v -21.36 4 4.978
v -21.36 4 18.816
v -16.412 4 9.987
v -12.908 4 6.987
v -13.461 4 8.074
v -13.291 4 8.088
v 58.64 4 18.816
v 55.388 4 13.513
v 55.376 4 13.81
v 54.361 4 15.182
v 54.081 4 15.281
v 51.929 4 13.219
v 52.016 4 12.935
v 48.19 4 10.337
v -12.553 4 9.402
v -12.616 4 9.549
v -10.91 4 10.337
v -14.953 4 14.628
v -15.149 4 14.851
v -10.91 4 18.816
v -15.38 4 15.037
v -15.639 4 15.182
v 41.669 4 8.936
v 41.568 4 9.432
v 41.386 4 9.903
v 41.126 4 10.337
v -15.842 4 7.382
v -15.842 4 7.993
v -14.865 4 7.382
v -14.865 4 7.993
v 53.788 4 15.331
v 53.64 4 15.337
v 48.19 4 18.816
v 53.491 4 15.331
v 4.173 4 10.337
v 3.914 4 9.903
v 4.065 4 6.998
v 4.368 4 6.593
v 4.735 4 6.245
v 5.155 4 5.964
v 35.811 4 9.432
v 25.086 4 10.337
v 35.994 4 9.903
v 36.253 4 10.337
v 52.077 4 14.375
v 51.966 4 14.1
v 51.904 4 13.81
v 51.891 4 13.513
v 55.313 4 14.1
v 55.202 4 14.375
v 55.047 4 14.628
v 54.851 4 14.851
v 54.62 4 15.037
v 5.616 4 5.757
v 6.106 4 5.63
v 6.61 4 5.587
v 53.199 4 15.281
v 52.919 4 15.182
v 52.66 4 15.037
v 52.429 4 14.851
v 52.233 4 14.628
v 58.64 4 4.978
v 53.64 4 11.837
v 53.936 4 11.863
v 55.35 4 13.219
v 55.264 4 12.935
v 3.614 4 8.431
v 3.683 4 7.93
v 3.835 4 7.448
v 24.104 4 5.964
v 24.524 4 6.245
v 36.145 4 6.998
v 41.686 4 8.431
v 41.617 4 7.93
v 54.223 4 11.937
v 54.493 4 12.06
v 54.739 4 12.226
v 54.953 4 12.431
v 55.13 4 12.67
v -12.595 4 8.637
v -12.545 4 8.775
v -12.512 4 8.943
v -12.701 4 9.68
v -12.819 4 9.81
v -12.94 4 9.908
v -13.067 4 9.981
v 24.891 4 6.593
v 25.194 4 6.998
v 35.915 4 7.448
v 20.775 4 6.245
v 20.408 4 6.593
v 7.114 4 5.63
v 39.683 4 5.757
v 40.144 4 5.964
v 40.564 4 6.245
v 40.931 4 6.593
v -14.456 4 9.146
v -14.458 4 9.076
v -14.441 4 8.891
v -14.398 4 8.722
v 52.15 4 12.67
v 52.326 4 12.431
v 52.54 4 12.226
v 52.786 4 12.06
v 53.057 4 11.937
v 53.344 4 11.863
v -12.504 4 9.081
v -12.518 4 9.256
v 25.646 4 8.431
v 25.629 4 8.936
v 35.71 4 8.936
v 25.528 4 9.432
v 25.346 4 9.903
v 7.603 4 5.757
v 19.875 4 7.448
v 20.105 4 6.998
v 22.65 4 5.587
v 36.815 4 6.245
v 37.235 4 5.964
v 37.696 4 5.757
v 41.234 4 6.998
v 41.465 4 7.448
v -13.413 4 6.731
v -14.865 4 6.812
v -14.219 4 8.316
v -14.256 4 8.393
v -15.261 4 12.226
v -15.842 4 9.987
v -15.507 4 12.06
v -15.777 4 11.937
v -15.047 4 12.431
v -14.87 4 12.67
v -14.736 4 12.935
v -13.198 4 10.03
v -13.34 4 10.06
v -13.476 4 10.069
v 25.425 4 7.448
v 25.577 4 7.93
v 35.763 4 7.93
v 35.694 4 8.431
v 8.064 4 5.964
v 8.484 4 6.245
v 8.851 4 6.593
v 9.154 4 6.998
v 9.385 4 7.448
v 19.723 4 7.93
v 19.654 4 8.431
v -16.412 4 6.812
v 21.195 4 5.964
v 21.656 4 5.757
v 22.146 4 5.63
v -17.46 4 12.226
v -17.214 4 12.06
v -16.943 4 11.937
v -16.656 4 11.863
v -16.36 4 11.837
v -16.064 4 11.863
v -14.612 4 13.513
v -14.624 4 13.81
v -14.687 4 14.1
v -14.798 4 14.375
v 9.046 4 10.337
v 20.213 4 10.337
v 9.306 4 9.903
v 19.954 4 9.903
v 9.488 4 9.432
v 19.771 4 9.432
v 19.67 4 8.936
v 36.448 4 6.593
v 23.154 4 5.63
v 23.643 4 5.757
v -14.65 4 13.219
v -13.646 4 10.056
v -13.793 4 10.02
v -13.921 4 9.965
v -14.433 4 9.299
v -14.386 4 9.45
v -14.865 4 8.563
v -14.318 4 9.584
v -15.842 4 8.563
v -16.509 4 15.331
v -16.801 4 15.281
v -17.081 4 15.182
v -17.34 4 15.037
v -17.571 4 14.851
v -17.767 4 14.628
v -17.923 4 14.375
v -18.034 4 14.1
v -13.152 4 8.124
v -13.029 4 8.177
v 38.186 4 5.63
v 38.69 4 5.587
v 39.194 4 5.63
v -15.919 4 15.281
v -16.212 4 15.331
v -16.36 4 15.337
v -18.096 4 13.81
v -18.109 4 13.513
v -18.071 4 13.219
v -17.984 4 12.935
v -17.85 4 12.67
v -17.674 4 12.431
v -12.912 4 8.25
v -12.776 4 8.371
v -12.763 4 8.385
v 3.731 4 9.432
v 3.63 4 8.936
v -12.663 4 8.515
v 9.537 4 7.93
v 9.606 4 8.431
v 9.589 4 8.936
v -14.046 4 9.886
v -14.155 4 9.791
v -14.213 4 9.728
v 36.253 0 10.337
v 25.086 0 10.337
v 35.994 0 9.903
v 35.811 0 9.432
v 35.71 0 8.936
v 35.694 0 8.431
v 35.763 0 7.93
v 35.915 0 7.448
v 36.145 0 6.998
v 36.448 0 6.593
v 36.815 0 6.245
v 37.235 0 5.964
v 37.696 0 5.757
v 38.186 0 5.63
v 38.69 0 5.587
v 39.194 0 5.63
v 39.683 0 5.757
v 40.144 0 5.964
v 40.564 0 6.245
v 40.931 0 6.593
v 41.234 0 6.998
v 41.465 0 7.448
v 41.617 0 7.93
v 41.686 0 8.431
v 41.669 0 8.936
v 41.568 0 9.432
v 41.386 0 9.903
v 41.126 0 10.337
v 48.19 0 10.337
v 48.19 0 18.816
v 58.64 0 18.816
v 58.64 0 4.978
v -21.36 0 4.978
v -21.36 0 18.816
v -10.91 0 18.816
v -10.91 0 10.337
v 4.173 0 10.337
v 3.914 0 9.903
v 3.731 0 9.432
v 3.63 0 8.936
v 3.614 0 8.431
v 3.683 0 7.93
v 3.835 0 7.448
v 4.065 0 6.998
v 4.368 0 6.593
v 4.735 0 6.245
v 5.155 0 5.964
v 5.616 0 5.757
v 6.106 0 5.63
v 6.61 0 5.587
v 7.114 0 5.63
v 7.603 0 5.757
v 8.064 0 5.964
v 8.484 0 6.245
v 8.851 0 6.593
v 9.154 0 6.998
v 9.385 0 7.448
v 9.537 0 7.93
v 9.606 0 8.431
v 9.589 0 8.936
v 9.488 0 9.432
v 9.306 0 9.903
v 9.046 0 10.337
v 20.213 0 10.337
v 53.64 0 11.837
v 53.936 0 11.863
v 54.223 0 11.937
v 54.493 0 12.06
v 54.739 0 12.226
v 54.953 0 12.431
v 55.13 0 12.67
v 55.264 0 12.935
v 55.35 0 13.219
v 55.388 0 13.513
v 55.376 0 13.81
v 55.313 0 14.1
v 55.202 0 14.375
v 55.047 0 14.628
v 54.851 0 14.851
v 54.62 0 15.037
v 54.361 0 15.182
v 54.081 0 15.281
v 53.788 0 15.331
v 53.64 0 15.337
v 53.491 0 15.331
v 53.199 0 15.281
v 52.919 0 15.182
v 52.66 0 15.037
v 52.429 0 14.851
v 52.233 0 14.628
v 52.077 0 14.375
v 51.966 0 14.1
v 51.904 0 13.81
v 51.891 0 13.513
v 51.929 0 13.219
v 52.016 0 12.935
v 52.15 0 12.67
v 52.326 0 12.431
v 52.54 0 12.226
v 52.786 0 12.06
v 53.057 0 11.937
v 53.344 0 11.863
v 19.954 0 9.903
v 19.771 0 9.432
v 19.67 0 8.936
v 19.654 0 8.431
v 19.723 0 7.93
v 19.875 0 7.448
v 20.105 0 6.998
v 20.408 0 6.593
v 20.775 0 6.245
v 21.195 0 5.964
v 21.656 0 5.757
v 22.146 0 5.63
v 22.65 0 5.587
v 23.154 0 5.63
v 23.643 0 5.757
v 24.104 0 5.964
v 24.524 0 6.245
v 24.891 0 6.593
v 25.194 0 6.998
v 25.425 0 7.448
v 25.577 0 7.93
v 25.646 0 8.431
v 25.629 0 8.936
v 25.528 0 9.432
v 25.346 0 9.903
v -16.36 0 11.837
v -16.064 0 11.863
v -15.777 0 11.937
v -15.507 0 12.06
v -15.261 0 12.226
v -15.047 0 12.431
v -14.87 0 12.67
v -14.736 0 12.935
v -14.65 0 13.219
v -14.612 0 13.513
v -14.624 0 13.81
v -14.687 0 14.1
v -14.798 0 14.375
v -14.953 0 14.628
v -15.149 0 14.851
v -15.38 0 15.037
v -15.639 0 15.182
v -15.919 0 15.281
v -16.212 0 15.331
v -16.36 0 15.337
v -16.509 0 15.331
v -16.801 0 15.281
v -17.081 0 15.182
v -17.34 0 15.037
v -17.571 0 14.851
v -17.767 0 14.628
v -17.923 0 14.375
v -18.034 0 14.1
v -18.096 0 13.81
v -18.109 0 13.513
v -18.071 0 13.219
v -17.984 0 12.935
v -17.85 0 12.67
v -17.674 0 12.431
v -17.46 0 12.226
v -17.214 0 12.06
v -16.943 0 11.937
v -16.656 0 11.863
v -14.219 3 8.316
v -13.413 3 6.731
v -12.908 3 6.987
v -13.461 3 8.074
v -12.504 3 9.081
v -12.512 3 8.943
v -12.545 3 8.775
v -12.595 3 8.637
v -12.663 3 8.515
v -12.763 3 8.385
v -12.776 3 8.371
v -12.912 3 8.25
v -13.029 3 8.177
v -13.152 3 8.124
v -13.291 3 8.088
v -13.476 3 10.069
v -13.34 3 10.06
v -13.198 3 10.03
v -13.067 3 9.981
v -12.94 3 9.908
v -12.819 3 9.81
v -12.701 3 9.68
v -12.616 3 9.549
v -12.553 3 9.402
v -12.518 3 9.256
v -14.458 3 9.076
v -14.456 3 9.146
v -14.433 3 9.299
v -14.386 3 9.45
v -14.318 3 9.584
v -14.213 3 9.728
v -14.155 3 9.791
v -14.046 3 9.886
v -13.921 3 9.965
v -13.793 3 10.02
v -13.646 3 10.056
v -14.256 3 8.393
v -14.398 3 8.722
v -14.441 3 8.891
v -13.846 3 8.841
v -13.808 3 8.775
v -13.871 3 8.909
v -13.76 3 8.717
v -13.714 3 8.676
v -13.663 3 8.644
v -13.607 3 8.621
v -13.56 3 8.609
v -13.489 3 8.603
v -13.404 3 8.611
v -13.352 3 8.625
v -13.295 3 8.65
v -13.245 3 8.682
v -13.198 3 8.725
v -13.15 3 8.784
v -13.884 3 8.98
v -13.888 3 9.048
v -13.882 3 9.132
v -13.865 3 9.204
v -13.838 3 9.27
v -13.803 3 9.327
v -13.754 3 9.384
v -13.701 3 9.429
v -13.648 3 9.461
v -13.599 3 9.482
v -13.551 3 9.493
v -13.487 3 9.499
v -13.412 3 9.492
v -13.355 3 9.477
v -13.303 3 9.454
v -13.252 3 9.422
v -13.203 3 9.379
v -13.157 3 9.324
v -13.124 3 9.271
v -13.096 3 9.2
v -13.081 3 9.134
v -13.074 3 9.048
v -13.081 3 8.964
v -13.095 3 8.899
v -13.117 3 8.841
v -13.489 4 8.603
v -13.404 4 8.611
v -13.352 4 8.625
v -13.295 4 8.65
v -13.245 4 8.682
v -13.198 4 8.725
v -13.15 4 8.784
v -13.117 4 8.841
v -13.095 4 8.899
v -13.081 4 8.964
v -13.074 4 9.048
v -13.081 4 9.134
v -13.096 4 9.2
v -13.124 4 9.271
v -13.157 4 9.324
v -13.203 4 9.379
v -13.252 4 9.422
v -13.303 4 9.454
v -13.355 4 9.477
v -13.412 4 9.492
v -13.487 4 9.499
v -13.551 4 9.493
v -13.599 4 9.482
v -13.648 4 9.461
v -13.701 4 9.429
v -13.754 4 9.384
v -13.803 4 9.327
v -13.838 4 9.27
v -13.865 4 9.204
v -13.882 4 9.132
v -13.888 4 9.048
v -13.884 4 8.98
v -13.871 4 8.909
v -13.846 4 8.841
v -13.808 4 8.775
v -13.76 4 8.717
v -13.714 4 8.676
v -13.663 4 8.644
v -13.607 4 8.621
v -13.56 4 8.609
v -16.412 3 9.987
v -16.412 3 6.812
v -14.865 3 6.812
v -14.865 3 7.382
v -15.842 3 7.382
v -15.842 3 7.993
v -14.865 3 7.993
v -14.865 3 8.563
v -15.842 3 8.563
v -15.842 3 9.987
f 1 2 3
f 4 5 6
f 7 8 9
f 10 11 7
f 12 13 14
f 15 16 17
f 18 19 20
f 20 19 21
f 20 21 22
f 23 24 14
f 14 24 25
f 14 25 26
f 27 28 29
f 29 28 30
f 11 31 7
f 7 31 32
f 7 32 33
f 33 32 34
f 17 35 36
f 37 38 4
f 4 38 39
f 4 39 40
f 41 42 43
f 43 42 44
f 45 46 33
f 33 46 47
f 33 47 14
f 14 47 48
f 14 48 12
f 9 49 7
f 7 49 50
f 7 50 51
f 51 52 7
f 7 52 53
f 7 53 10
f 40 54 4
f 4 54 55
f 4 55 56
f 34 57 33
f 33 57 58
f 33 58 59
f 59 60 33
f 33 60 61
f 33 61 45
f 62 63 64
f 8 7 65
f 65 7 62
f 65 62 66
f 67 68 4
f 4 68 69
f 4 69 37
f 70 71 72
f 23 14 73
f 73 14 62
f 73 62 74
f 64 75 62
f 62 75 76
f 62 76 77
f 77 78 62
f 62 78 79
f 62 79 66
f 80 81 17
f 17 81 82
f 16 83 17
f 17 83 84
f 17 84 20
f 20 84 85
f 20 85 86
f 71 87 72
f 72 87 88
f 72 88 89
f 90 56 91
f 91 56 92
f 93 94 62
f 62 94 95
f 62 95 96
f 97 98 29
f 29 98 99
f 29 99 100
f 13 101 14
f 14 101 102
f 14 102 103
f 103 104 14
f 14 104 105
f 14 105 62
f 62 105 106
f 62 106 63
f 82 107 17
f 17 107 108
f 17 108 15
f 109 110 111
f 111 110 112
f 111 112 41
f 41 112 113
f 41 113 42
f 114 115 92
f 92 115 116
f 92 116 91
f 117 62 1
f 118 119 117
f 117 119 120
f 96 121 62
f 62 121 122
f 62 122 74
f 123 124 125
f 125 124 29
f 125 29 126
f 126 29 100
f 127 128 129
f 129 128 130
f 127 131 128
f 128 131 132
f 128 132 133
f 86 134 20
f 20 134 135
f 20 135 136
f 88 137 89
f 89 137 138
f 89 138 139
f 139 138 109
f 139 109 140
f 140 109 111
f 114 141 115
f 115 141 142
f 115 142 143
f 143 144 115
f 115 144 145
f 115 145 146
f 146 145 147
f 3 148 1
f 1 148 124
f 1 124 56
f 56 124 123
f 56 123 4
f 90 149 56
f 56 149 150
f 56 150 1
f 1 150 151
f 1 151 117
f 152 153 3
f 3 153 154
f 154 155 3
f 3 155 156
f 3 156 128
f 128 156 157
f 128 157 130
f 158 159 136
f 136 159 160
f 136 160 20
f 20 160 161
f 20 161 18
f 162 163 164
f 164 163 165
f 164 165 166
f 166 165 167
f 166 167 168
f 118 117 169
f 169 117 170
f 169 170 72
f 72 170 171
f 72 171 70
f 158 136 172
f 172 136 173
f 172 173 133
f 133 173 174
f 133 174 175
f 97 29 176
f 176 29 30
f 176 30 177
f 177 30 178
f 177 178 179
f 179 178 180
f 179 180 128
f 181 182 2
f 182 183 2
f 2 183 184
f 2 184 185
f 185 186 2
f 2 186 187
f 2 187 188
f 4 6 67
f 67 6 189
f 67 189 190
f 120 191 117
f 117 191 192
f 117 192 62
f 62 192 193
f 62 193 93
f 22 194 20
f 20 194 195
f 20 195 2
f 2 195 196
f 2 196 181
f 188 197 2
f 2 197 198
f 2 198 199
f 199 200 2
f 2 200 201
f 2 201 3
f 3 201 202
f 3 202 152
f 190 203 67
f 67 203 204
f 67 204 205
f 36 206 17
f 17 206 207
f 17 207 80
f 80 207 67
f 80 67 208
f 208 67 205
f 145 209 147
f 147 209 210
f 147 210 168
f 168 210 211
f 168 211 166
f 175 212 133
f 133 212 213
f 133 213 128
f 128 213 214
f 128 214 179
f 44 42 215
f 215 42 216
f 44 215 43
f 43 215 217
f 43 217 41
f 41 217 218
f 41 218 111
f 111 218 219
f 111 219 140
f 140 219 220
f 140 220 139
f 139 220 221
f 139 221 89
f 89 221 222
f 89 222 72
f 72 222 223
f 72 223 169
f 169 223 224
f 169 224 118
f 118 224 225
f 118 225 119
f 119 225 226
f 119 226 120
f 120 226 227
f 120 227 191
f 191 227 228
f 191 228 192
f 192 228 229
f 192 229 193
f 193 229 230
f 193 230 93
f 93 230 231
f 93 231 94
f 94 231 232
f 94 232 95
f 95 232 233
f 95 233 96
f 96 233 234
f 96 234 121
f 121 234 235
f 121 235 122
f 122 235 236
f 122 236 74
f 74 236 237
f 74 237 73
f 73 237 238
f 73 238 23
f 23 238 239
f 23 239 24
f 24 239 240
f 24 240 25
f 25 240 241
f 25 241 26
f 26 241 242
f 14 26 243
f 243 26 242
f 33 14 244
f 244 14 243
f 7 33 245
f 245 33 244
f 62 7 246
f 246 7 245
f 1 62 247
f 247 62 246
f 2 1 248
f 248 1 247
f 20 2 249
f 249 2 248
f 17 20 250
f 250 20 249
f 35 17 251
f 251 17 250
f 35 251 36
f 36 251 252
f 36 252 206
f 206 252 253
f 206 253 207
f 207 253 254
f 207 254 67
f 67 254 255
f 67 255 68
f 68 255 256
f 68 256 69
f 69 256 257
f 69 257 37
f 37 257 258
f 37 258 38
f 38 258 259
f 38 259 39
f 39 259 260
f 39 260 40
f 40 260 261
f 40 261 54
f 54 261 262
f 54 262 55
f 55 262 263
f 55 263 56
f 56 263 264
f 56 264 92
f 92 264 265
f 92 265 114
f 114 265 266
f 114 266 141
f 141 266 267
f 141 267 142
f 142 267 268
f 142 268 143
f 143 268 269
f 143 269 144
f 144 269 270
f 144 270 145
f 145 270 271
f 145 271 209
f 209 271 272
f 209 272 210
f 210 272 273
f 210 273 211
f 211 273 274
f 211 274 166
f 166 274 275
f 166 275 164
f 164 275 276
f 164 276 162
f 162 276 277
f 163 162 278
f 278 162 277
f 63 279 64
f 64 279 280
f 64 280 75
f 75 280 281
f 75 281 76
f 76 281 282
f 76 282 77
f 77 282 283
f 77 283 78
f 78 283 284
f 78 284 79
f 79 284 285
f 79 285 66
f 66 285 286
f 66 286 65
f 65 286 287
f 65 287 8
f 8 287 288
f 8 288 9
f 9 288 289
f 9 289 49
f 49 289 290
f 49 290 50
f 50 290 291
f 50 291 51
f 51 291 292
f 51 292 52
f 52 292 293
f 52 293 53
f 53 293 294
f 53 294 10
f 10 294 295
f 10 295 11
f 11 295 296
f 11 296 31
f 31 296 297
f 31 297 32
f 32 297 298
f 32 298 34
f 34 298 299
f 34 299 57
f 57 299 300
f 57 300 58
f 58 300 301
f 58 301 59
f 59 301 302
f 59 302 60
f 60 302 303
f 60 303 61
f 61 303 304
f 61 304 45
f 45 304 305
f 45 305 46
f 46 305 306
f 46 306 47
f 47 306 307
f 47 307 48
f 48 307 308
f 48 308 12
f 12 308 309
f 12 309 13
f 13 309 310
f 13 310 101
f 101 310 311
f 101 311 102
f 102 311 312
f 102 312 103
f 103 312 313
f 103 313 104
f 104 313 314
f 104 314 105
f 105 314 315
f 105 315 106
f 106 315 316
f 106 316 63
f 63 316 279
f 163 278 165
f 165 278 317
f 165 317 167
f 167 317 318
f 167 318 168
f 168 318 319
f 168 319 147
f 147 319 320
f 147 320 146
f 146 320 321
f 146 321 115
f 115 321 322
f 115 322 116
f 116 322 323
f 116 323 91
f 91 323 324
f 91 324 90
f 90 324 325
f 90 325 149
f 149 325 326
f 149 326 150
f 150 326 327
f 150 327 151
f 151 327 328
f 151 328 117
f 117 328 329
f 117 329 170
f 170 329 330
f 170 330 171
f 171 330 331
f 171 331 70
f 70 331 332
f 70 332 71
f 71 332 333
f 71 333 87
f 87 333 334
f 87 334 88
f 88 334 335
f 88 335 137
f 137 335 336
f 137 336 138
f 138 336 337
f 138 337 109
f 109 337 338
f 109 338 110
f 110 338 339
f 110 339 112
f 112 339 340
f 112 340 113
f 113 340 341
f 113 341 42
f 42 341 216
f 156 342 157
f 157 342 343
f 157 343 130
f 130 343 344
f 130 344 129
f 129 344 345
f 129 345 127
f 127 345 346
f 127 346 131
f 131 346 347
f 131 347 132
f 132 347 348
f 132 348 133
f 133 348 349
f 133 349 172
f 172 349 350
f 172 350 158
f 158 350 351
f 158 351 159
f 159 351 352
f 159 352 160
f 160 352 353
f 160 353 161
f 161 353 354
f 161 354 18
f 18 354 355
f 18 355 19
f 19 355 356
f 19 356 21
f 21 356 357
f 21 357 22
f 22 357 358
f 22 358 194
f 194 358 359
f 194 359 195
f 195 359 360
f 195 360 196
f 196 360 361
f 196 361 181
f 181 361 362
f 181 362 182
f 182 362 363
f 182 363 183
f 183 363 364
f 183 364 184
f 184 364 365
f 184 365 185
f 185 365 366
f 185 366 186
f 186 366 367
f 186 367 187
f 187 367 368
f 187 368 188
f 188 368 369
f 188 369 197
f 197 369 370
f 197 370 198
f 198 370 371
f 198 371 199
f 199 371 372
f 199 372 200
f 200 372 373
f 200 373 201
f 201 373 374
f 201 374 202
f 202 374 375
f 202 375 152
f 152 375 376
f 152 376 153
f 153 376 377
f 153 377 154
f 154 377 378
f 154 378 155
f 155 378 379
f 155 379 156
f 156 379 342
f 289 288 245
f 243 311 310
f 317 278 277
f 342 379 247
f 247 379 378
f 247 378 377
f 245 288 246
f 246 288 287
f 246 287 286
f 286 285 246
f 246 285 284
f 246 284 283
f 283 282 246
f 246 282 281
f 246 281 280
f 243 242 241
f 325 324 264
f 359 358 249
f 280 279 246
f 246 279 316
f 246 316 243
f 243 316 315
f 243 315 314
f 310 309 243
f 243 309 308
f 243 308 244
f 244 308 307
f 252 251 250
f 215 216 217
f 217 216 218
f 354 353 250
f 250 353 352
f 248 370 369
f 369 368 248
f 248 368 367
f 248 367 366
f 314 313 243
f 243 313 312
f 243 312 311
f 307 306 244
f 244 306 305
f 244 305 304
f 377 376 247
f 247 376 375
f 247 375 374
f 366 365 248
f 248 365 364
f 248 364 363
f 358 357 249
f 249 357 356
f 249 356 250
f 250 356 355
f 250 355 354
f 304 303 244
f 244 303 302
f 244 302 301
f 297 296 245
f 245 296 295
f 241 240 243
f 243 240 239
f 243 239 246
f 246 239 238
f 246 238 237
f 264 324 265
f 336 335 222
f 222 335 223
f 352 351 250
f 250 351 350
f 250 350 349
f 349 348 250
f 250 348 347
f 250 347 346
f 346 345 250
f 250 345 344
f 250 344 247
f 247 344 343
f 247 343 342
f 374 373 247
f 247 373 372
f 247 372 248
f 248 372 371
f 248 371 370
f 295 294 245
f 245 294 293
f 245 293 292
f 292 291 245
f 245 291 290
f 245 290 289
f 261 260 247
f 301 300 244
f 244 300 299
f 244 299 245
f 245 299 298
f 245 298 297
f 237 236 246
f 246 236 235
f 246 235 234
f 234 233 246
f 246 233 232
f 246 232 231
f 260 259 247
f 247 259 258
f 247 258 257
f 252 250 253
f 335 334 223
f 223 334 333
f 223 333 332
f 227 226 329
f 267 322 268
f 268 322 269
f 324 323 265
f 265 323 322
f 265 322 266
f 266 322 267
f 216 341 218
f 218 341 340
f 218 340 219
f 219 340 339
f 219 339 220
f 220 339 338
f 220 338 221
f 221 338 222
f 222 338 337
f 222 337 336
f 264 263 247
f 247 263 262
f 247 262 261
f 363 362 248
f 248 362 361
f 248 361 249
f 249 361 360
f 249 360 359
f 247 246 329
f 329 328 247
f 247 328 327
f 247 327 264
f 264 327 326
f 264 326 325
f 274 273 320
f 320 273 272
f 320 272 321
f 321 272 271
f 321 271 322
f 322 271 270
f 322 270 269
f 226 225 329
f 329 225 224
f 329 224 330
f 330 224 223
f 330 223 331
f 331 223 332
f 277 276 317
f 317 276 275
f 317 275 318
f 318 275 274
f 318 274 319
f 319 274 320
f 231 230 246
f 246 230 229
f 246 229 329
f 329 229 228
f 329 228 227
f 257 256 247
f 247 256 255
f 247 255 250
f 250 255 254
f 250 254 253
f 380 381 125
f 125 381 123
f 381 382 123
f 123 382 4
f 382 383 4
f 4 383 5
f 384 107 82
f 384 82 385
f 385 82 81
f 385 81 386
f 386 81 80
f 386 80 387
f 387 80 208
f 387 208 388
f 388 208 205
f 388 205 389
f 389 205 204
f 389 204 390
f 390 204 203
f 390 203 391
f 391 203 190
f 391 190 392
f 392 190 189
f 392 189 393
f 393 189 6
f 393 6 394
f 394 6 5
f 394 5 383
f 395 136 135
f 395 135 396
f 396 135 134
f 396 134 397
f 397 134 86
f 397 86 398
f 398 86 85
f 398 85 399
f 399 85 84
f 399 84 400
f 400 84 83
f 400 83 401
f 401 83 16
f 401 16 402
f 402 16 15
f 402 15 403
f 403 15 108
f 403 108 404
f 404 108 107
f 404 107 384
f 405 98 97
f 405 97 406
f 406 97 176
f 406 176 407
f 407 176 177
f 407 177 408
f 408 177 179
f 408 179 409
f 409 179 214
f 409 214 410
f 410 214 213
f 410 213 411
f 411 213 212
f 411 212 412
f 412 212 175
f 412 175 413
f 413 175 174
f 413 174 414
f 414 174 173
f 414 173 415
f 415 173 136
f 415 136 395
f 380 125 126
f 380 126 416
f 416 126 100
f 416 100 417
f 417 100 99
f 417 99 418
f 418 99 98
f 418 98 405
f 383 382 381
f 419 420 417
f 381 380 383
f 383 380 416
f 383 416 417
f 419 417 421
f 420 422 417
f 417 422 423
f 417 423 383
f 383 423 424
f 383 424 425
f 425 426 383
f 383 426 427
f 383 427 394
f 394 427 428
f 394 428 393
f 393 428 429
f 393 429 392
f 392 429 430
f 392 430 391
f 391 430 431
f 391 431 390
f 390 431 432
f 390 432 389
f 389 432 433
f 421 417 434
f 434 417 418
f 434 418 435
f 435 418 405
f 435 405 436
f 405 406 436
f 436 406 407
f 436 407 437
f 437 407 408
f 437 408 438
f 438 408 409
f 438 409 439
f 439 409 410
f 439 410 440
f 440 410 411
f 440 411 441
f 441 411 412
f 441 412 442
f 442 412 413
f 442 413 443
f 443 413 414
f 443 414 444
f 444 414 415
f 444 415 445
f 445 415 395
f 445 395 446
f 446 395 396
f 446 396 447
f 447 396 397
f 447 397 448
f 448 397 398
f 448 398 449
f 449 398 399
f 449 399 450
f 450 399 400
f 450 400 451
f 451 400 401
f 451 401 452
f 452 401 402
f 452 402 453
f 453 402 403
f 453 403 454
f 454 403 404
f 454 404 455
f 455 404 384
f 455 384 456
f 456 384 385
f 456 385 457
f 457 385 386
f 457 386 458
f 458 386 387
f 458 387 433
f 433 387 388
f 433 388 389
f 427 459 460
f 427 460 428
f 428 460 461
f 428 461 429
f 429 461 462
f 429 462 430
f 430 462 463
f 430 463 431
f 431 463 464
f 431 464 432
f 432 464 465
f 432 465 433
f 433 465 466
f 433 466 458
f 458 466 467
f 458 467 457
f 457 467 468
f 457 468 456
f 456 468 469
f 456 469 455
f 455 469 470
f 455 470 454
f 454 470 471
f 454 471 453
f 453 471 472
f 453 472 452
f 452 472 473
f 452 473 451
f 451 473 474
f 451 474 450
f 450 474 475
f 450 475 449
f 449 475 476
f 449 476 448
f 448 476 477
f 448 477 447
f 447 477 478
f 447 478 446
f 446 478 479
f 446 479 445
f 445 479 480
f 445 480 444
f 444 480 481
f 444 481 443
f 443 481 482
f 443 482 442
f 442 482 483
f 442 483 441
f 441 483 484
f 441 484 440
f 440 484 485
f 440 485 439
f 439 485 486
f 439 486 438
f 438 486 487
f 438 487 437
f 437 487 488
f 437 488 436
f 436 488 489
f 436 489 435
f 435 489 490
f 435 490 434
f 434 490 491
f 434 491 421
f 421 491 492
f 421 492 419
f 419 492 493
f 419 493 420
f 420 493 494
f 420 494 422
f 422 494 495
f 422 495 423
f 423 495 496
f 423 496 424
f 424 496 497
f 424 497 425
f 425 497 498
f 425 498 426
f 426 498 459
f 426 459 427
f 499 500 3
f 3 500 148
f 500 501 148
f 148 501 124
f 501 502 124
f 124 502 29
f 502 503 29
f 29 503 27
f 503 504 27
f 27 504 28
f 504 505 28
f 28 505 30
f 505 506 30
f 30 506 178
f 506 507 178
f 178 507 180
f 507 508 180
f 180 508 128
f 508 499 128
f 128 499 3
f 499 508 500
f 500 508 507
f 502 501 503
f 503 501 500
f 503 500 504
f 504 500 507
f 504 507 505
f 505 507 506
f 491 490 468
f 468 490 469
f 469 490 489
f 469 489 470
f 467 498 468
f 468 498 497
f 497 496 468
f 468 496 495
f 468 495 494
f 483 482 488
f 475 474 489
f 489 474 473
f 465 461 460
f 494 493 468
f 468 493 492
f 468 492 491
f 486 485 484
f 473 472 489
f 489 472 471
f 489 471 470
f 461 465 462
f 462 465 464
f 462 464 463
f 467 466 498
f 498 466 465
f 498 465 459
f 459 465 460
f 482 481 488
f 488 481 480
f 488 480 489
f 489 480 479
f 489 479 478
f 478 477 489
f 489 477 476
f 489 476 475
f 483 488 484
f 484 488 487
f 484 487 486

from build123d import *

# Parameters (mm, degrees)
BOSS_EXTRUDE1_OUTLINE_R = 1.75
BOSS_EXTRUDE1_DEPTH     = 4
CUT_EXTRUDE1_DEPTH      = 1


# Read off the part's stored shape, not the designer's step: Boss-Extrude1
with BuildPart() as part:
    # Boss-Extrude1 outline → Boss-Extrude1 (new body)
    with BuildSketch(Plane(origin=(0, 0, 0), x_dir=(1, 0, 0), z_dir=(0, 1, 0))):
        with BuildLine():
            Line((25.086474615, -10.33744254), (36.25307775, -10.33744254))
            ThreePointArc((36.25307775, -10.33744254), (38.689776183, -5.587442326), (41.126474615, -10.33744254))
            Line((41.126474615, -10.33744254), (48.189776182, -10.33744254))
            Line((48.189776182, -10.33744254), (48.189776182, -18.81631662))
            Line((48.189776182, -18.81631662), (58.639776182, -18.81631662))
            Line((58.639776182, -18.81631662), (58.639776182, -4.977921711))
            Line((58.639776182, -4.977921711), (-21.360223818, -4.977921711))
            Line((-21.360223818, -4.977921711), (-21.360223818, -18.81631662))
            Line((-21.360223818, -18.81631662), (-10.910223818, -18.81631662))
            Line((-10.910223818, -18.81631662), (-10.910223818, -10.33744254))
            Line((-10.910223818, -10.33744254), (4.17307775, -10.33744254))
            ThreePointArc((4.17307775, -10.33744254), (6.609776182, -5.587442326), (9.046474615, -10.33744254))
            Line((9.046474615, -10.33744254), (20.21307775, -10.33744254))
            ThreePointArc((20.21307775, -10.33744254), (22.649776182, -5.587442326), (25.086474615, -10.33744254))
        make_face()
        with Locations((-16.360223818, -13.587442433)):
            Circle(BOSS_EXTRUDE1_OUTLINE_R, mode=Mode.SUBTRACT)
        with Locations((53.639776182, -13.587442433)):
            Circle(BOSS_EXTRUDE1_OUTLINE_R, mode=Mode.SUBTRACT)
    extrude(amount=BOSS_EXTRUDE1_DEPTH)

    # Sketch2 → Cut-Extrude1 (cut)
    # profile 1 of 2: a face of its own
    with BuildSketch(Plane(origin=(0, 4, 0), x_dir=(1, 0, 0), z_dir=(0, 1, 0))):
        Polygon((-16.41198232, -6.812466594), (-14.865187448, -6.812466594), (-14.865187448, -7.382338389), (-15.842110525, -7.382338389), (-15.842110525, -7.992915312), (-14.865187448, -7.992915312), (-14.865187448, -8.562787107), (-15.842110525, -8.562787107), (-15.842110525, -9.987466594), (-16.41198232, -9.987466594), align=None)
    # profile 2 of 2: a face of its own
    with BuildSketch(Plane(origin=(0, 4, 0), x_dir=(1, 0, 0), z_dir=(0, 1, 0))):
        with BuildLine():
            Line((-13.412523186, -6.731056337), (-12.907525189, -6.987371442))
            Line((-12.907525189, -6.987371442), (-13.460860525, -8.074325568))
            add(Edge.make_bspline(
                [(-13.460860525, -8.074325568), (-13.428168252, -8.075158914), (-13.363985411, -8.076794974), (-13.269480346, -8.090388716), (-13.179110672, -8.113598896), (-13.09179585, -8.144481034), (-13.008800475, -8.185943305), (-12.928789535, -8.235267944), (-12.853832504, -8.295423778), (-12.782210807, -8.362073474), (-12.717085558, -8.435911696), (-12.660512768, -8.515253227), (-12.611210579, -8.59816766), (-12.572885042, -8.686509995), (-12.541970388, -8.778815858), (-12.519664104, -8.875454234), (-12.506937745, -8.976704968), (-12.505183204, -9.045489177), (-12.504290013, -9.080505456)],
                knots=[0, 0, 0, 0, 1.013672955, 1.990085268, 2.953345895, 3.903887042, 4.856677135, 5.825509993, 6.813434118, 7.832212698, 8.85718992, 9.860832204, 10.8510077, 11.84312444, 12.841215551, 13.86684641, 14.914066156, 16, 16, 16, 16], degree=3))
            add(Edge.make_bspline(
                [(-12.504290013, -9.080505456), (-12.505127007, -9.114259025), (-12.506781387, -9.180975356), (-12.520457023, -9.278964679), (-12.54255757, -9.372979704), (-12.57414369, -9.462832672), (-12.614292202, -9.548962785), (-12.663391114, -9.631319503), (-12.721847604, -9.7092874), (-12.78815132, -9.782452193), (-12.860632718, -9.849142442), (-12.937032061, -9.908420617), (-13.017996745, -9.957386638), (-13.101996444, -9.998739592), (-13.190577642, -10.029597853), (-13.28241472, -10.052890494), (-13.378204103, -10.06633136), (-13.443223482, -10.068021564), (-13.476124948, -10.06887685)],
                knots=[0, 0, 0, 0, 1.049934834, 2.075270938, 3.072134561, 4.05064612, 5.033440221, 6.024524368, 7.028587226, 8.060776465, 9.092543989, 10.090062252, 11.064205434, 12.031961459, 12.998029633, 13.977230324, 14.976426867, 16, 16, 16, 16], degree=3))
            add(Edge.make_bspline(
                [(-13.476124948, -10.06887685), (-13.510529884, -10.068174962), (-13.578182536, -10.066794794), (-13.677175296, -10.051340548), (-13.772117873, -10.028076335), (-13.862476674, -9.994858992), (-13.948813614, -9.952563006), (-14.03011223, -9.900225978), (-14.107057351, -9.838425045), (-14.17882863, -9.768550629), (-14.243489203, -9.692012768), (-14.30116103, -9.61254654), (-14.349951471, -9.530027246), (-14.389446195, -9.444543116), (-14.420260894, -9.356366547), (-14.44170164, -9.265330188), (-14.455672265, -9.171675513), (-14.457310002, -9.108116151), (-14.458136166, -9.076053333)],
                knots=[0, 0, 0, 0, 1.063775006, 2.091769615, 3.092589432, 4.084662827, 5.064601646, 6.061867366, 7.070035304, 8.113879863, 9.156342271, 10.166834137, 11.149076039, 12.117706134, 13.076241869, 14.034148791, 15.008317125, 16, 16, 16, 16], degree=3))
            add(Edge.make_bspline(
                [(-14.458136166, -9.076053333), (-14.457699638, -9.05122443), (-14.45682415, -9.001428418), (-14.448026022, -8.926861595), (-14.434649776, -8.852099041), (-14.419144957, -8.789012031), (-14.40317966, -8.735665362), (-14.387110466, -8.690519517), (-14.367196241, -8.640417501), (-14.344431332, -8.585231374), (-14.318099865, -8.525027523), (-14.288339392, -8.45997005), (-14.255075822, -8.38956629), (-14.231354315, -8.341209808), (-14.218993538, -8.316012267)],
                knots=[0, 0, 0, 0, 1.110454016, 2.227089276, 3.35462975, 4.507227546, 5.131400587, 5.845402449, 6.650387134, 7.543487832, 8.516250726, 9.590168902, 10.744287919, 12, 12, 12, 12], degree=3))
            Line((-14.218993538, -8.316012267), (-13.412523186, -6.731056337))
        make_face()
        with BuildLine():
            add(Edge.make_bspline(
                [(-13.488845301, -8.603492235), (-13.516189484, -8.604746455), (-13.569698461, -8.607200799), (-13.645780224, -8.632903881), (-13.71514953, -8.67322562), (-13.775279703, -8.729381439), (-13.825573059, -8.796489848), (-13.862530382, -8.873035953), (-13.884762266, -8.957998267), (-13.887072017, -9.0174025), (-13.888264372, -9.048068557)],
                knots=[0, 0, 0, 0, 0.981744412, 1.921144944, 2.858899012, 3.85339082, 4.86292663, 5.863643845, 6.897155691, 8, 8, 8, 8], degree=3))
            add(Edge.make_bspline(
                [(-13.888264372, -9.048068557), (-13.886852586, -9.078744826), (-13.884106568, -9.138412221), (-13.861038737, -9.224183527), (-13.823269539, -9.302467905), (-13.770300647, -9.370465646), (-13.708115929, -9.426909036), (-13.639160453, -9.468651622), (-13.56458442, -9.494295462), (-13.512998357, -9.497424351), (-13.486937248, -9.499005055)],
                knots=[0, 0, 0, 0, 1.098279937, 2.136227893, 3.159405121, 4.194678092, 5.206500211, 6.154139736, 7.067477469, 8, 8, 8, 8], degree=3))
            add(Edge.make_bspline(
                [(-13.486937248, -9.499005055), (-13.459413771, -9.497396198), (-13.405435452, -9.494240948), (-13.327568188, -9.469676154), (-13.256435974, -9.428632893), (-13.193541338, -9.372370211), (-13.13951604, -9.305148416), (-13.102135992, -9.226404206), (-13.078001724, -9.140013833), (-13.075470478, -9.079404145), (-13.074161807, -9.048068557)],
                knots=[0, 0, 0, 0, 0.96921794, 1.900804717, 2.848419905, 3.844199796, 4.861108892, 5.867439427, 6.897452859, 8, 8, 8, 8], degree=3))
            add(Edge.make_bspline(
                [(-13.074161807, -9.048068557), (-13.075652622, -9.017420405), (-13.078539758, -8.95806668), (-13.100225571, -8.872706338), (-13.138944126, -8.79645527), (-13.19037541, -8.729104426), (-13.252574944, -8.672973647), (-13.324720551, -8.632585891), (-13.404277856, -8.607246336), (-13.460245153, -8.604761847), (-13.488845301, -8.603492235)],
                knots=[0, 0, 0, 0, 1.083229974, 2.097801324, 3.086792542, 4.086858909, 5.079819718, 6.026392613, 6.991456328, 8, 8, 8, 8], degree=3))
        make_face(mode=Mode.SUBTRACT)
    extrude(amount=-CUT_EXTRUDE1_DEPTH, mode=Mode.SUBTRACT)


solid = part.part
